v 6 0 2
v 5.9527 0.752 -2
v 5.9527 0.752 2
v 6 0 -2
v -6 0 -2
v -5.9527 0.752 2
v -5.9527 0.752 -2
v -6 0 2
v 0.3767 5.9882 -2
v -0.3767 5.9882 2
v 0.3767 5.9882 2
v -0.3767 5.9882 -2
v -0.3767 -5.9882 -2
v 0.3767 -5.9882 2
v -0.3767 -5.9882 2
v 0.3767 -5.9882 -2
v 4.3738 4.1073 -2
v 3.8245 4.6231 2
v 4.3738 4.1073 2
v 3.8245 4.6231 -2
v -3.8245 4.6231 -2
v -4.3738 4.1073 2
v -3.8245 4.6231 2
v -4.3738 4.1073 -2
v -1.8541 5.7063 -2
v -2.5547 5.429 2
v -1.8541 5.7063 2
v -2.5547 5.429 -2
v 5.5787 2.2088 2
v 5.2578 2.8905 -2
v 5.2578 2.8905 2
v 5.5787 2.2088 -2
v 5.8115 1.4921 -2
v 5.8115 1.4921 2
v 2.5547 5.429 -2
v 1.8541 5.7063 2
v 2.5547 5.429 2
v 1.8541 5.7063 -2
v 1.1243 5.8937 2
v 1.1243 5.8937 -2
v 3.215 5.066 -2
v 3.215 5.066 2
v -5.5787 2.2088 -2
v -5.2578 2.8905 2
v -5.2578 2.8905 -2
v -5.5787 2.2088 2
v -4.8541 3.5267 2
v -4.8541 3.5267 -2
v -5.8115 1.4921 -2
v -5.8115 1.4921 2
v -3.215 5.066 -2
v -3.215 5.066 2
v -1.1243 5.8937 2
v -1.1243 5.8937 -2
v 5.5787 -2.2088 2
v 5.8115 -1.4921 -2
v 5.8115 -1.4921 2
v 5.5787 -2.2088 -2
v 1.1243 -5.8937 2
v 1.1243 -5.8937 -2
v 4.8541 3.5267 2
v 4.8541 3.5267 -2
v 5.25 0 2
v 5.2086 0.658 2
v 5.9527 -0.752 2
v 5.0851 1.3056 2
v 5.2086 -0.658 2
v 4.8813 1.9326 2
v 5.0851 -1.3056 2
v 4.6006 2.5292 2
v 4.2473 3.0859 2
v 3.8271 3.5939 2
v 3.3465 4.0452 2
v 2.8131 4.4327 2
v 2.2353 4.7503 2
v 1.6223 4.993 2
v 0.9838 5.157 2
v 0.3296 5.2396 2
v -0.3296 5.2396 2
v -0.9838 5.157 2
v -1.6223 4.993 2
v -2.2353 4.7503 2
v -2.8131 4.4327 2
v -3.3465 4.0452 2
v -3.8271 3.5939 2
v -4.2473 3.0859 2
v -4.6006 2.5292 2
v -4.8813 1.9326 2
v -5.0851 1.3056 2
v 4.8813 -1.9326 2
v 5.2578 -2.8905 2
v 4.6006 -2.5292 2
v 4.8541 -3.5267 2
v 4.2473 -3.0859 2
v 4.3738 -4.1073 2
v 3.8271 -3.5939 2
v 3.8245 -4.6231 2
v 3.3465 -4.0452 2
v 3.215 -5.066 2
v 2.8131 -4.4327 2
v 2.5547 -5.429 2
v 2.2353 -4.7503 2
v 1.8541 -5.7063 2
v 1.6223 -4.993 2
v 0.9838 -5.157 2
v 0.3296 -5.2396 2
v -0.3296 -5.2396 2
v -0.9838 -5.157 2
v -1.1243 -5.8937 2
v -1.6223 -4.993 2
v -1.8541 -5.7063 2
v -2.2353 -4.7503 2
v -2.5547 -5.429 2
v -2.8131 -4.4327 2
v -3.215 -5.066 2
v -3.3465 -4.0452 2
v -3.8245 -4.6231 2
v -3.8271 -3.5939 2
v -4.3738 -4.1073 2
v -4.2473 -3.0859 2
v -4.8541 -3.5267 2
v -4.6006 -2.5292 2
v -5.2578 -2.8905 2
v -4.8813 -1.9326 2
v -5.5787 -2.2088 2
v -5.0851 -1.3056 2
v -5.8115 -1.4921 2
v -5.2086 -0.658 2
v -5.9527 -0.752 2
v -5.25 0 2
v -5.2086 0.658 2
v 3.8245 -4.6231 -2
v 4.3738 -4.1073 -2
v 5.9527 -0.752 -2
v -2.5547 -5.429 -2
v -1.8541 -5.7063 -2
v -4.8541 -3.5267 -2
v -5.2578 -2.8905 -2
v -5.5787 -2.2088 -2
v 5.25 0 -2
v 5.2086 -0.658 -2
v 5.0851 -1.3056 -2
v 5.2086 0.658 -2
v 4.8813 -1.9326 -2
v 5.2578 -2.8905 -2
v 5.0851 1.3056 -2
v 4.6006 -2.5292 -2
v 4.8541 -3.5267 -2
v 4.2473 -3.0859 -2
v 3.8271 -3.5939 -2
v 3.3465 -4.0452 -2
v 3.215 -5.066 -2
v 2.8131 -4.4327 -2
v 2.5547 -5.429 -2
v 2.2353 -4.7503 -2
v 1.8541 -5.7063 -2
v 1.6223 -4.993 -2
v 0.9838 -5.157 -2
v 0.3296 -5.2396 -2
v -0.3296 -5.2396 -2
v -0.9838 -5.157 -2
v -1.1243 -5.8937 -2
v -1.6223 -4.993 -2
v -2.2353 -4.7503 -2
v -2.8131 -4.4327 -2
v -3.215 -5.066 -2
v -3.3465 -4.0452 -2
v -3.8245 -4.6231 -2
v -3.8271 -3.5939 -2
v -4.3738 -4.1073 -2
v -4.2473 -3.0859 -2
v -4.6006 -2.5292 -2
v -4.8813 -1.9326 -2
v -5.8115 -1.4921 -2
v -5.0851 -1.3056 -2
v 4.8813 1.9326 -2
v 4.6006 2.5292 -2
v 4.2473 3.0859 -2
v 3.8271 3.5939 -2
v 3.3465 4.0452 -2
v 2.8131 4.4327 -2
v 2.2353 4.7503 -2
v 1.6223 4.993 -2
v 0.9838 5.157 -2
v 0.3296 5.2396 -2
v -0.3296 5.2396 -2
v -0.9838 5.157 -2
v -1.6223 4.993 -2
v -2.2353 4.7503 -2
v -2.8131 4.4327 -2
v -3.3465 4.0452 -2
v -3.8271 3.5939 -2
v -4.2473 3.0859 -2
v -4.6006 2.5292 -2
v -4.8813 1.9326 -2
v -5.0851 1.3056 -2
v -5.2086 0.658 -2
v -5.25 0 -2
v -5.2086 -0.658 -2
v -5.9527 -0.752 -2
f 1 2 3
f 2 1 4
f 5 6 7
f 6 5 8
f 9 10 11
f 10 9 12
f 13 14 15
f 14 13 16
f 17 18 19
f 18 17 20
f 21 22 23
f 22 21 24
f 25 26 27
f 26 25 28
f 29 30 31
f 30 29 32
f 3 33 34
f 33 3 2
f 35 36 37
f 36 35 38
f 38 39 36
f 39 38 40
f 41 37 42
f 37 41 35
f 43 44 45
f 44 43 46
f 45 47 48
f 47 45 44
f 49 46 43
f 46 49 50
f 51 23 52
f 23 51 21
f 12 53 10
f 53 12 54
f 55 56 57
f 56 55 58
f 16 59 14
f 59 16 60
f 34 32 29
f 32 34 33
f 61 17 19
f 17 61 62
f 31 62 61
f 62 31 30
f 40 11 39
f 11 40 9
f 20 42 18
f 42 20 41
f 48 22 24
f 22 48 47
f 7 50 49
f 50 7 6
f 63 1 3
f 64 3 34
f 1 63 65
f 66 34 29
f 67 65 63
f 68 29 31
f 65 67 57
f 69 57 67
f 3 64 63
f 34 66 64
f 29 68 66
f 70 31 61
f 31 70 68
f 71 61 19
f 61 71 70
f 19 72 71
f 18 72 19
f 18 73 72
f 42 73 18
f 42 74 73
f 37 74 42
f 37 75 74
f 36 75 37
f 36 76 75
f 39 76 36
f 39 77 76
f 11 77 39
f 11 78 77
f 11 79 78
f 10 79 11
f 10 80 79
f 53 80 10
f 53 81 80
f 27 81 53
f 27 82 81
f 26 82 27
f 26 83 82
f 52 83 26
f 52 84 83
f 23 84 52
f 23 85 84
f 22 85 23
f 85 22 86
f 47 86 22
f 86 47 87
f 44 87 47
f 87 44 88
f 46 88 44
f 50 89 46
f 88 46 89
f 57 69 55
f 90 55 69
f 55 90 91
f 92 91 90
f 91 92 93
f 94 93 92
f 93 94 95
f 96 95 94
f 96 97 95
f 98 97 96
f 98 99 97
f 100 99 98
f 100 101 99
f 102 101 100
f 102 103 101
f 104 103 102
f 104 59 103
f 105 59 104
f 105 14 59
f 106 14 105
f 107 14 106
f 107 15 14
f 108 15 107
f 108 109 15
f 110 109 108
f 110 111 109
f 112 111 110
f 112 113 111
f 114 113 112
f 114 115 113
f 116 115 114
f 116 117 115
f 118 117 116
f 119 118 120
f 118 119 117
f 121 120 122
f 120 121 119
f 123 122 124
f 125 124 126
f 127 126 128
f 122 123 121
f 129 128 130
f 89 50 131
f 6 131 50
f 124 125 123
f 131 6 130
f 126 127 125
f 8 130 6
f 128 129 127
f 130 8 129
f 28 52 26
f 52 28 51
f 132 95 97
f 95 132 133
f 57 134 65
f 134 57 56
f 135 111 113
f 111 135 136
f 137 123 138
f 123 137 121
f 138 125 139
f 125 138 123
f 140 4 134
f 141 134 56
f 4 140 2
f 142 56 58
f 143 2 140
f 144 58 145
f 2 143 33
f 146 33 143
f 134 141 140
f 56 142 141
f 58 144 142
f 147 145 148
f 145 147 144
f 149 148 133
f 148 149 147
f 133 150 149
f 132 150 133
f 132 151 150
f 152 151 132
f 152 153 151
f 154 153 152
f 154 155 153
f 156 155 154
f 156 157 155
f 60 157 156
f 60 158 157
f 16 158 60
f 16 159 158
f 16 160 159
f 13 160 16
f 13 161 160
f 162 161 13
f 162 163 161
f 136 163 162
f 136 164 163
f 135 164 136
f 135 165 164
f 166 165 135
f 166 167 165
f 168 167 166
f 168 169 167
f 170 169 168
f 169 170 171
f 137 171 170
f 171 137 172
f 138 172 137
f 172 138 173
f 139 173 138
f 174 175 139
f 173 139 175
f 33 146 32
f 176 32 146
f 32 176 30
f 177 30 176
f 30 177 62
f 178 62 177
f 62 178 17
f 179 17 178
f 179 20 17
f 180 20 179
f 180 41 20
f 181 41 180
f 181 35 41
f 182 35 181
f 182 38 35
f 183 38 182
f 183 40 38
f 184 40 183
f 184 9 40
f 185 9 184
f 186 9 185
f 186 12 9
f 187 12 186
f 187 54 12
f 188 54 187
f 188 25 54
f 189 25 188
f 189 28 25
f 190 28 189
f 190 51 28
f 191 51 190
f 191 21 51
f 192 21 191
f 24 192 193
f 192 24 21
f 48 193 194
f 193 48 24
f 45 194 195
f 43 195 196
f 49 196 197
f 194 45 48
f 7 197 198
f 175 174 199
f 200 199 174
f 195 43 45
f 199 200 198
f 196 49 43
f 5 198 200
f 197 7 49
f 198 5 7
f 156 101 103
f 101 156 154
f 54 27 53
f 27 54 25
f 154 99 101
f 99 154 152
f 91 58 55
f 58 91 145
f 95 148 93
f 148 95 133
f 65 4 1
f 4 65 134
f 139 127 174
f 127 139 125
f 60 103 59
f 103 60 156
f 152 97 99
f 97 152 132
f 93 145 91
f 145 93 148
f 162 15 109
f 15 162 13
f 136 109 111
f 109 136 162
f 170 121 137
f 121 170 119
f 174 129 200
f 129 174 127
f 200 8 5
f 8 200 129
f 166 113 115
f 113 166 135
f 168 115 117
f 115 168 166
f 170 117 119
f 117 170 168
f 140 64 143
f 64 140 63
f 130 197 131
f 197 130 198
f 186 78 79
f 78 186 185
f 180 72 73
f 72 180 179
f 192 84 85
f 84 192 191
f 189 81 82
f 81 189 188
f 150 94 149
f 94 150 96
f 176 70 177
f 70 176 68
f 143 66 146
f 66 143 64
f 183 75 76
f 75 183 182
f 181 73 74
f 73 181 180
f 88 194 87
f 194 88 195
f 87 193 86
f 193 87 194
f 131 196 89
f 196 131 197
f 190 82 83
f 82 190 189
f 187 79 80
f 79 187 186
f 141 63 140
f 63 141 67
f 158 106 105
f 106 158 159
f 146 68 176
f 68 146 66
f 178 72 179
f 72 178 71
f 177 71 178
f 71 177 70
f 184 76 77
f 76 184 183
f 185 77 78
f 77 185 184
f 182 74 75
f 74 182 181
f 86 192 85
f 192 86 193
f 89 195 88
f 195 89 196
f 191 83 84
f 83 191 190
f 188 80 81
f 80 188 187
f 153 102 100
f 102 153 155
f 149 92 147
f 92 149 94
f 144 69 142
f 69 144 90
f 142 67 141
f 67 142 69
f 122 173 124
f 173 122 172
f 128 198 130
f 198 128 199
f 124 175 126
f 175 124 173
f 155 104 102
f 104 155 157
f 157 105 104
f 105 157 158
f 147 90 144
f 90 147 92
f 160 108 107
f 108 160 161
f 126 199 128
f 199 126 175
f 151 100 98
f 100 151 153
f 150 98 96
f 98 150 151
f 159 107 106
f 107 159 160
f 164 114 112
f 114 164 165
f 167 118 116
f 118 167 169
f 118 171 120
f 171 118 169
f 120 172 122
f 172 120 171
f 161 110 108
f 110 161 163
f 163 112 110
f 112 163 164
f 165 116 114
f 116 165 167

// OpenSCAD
$fn = 50;


difference() {
	union() {
		translate(v = [0, 0, -2.0000000000]) {
			cylinder(h = 4, r = 6.0000000000);
		}
	}
	union() {
		translate(v = [0, 0, -100.0000000000]) {
			cylinder(h = 200, r = 5.2500000000);
		}
	}
}
